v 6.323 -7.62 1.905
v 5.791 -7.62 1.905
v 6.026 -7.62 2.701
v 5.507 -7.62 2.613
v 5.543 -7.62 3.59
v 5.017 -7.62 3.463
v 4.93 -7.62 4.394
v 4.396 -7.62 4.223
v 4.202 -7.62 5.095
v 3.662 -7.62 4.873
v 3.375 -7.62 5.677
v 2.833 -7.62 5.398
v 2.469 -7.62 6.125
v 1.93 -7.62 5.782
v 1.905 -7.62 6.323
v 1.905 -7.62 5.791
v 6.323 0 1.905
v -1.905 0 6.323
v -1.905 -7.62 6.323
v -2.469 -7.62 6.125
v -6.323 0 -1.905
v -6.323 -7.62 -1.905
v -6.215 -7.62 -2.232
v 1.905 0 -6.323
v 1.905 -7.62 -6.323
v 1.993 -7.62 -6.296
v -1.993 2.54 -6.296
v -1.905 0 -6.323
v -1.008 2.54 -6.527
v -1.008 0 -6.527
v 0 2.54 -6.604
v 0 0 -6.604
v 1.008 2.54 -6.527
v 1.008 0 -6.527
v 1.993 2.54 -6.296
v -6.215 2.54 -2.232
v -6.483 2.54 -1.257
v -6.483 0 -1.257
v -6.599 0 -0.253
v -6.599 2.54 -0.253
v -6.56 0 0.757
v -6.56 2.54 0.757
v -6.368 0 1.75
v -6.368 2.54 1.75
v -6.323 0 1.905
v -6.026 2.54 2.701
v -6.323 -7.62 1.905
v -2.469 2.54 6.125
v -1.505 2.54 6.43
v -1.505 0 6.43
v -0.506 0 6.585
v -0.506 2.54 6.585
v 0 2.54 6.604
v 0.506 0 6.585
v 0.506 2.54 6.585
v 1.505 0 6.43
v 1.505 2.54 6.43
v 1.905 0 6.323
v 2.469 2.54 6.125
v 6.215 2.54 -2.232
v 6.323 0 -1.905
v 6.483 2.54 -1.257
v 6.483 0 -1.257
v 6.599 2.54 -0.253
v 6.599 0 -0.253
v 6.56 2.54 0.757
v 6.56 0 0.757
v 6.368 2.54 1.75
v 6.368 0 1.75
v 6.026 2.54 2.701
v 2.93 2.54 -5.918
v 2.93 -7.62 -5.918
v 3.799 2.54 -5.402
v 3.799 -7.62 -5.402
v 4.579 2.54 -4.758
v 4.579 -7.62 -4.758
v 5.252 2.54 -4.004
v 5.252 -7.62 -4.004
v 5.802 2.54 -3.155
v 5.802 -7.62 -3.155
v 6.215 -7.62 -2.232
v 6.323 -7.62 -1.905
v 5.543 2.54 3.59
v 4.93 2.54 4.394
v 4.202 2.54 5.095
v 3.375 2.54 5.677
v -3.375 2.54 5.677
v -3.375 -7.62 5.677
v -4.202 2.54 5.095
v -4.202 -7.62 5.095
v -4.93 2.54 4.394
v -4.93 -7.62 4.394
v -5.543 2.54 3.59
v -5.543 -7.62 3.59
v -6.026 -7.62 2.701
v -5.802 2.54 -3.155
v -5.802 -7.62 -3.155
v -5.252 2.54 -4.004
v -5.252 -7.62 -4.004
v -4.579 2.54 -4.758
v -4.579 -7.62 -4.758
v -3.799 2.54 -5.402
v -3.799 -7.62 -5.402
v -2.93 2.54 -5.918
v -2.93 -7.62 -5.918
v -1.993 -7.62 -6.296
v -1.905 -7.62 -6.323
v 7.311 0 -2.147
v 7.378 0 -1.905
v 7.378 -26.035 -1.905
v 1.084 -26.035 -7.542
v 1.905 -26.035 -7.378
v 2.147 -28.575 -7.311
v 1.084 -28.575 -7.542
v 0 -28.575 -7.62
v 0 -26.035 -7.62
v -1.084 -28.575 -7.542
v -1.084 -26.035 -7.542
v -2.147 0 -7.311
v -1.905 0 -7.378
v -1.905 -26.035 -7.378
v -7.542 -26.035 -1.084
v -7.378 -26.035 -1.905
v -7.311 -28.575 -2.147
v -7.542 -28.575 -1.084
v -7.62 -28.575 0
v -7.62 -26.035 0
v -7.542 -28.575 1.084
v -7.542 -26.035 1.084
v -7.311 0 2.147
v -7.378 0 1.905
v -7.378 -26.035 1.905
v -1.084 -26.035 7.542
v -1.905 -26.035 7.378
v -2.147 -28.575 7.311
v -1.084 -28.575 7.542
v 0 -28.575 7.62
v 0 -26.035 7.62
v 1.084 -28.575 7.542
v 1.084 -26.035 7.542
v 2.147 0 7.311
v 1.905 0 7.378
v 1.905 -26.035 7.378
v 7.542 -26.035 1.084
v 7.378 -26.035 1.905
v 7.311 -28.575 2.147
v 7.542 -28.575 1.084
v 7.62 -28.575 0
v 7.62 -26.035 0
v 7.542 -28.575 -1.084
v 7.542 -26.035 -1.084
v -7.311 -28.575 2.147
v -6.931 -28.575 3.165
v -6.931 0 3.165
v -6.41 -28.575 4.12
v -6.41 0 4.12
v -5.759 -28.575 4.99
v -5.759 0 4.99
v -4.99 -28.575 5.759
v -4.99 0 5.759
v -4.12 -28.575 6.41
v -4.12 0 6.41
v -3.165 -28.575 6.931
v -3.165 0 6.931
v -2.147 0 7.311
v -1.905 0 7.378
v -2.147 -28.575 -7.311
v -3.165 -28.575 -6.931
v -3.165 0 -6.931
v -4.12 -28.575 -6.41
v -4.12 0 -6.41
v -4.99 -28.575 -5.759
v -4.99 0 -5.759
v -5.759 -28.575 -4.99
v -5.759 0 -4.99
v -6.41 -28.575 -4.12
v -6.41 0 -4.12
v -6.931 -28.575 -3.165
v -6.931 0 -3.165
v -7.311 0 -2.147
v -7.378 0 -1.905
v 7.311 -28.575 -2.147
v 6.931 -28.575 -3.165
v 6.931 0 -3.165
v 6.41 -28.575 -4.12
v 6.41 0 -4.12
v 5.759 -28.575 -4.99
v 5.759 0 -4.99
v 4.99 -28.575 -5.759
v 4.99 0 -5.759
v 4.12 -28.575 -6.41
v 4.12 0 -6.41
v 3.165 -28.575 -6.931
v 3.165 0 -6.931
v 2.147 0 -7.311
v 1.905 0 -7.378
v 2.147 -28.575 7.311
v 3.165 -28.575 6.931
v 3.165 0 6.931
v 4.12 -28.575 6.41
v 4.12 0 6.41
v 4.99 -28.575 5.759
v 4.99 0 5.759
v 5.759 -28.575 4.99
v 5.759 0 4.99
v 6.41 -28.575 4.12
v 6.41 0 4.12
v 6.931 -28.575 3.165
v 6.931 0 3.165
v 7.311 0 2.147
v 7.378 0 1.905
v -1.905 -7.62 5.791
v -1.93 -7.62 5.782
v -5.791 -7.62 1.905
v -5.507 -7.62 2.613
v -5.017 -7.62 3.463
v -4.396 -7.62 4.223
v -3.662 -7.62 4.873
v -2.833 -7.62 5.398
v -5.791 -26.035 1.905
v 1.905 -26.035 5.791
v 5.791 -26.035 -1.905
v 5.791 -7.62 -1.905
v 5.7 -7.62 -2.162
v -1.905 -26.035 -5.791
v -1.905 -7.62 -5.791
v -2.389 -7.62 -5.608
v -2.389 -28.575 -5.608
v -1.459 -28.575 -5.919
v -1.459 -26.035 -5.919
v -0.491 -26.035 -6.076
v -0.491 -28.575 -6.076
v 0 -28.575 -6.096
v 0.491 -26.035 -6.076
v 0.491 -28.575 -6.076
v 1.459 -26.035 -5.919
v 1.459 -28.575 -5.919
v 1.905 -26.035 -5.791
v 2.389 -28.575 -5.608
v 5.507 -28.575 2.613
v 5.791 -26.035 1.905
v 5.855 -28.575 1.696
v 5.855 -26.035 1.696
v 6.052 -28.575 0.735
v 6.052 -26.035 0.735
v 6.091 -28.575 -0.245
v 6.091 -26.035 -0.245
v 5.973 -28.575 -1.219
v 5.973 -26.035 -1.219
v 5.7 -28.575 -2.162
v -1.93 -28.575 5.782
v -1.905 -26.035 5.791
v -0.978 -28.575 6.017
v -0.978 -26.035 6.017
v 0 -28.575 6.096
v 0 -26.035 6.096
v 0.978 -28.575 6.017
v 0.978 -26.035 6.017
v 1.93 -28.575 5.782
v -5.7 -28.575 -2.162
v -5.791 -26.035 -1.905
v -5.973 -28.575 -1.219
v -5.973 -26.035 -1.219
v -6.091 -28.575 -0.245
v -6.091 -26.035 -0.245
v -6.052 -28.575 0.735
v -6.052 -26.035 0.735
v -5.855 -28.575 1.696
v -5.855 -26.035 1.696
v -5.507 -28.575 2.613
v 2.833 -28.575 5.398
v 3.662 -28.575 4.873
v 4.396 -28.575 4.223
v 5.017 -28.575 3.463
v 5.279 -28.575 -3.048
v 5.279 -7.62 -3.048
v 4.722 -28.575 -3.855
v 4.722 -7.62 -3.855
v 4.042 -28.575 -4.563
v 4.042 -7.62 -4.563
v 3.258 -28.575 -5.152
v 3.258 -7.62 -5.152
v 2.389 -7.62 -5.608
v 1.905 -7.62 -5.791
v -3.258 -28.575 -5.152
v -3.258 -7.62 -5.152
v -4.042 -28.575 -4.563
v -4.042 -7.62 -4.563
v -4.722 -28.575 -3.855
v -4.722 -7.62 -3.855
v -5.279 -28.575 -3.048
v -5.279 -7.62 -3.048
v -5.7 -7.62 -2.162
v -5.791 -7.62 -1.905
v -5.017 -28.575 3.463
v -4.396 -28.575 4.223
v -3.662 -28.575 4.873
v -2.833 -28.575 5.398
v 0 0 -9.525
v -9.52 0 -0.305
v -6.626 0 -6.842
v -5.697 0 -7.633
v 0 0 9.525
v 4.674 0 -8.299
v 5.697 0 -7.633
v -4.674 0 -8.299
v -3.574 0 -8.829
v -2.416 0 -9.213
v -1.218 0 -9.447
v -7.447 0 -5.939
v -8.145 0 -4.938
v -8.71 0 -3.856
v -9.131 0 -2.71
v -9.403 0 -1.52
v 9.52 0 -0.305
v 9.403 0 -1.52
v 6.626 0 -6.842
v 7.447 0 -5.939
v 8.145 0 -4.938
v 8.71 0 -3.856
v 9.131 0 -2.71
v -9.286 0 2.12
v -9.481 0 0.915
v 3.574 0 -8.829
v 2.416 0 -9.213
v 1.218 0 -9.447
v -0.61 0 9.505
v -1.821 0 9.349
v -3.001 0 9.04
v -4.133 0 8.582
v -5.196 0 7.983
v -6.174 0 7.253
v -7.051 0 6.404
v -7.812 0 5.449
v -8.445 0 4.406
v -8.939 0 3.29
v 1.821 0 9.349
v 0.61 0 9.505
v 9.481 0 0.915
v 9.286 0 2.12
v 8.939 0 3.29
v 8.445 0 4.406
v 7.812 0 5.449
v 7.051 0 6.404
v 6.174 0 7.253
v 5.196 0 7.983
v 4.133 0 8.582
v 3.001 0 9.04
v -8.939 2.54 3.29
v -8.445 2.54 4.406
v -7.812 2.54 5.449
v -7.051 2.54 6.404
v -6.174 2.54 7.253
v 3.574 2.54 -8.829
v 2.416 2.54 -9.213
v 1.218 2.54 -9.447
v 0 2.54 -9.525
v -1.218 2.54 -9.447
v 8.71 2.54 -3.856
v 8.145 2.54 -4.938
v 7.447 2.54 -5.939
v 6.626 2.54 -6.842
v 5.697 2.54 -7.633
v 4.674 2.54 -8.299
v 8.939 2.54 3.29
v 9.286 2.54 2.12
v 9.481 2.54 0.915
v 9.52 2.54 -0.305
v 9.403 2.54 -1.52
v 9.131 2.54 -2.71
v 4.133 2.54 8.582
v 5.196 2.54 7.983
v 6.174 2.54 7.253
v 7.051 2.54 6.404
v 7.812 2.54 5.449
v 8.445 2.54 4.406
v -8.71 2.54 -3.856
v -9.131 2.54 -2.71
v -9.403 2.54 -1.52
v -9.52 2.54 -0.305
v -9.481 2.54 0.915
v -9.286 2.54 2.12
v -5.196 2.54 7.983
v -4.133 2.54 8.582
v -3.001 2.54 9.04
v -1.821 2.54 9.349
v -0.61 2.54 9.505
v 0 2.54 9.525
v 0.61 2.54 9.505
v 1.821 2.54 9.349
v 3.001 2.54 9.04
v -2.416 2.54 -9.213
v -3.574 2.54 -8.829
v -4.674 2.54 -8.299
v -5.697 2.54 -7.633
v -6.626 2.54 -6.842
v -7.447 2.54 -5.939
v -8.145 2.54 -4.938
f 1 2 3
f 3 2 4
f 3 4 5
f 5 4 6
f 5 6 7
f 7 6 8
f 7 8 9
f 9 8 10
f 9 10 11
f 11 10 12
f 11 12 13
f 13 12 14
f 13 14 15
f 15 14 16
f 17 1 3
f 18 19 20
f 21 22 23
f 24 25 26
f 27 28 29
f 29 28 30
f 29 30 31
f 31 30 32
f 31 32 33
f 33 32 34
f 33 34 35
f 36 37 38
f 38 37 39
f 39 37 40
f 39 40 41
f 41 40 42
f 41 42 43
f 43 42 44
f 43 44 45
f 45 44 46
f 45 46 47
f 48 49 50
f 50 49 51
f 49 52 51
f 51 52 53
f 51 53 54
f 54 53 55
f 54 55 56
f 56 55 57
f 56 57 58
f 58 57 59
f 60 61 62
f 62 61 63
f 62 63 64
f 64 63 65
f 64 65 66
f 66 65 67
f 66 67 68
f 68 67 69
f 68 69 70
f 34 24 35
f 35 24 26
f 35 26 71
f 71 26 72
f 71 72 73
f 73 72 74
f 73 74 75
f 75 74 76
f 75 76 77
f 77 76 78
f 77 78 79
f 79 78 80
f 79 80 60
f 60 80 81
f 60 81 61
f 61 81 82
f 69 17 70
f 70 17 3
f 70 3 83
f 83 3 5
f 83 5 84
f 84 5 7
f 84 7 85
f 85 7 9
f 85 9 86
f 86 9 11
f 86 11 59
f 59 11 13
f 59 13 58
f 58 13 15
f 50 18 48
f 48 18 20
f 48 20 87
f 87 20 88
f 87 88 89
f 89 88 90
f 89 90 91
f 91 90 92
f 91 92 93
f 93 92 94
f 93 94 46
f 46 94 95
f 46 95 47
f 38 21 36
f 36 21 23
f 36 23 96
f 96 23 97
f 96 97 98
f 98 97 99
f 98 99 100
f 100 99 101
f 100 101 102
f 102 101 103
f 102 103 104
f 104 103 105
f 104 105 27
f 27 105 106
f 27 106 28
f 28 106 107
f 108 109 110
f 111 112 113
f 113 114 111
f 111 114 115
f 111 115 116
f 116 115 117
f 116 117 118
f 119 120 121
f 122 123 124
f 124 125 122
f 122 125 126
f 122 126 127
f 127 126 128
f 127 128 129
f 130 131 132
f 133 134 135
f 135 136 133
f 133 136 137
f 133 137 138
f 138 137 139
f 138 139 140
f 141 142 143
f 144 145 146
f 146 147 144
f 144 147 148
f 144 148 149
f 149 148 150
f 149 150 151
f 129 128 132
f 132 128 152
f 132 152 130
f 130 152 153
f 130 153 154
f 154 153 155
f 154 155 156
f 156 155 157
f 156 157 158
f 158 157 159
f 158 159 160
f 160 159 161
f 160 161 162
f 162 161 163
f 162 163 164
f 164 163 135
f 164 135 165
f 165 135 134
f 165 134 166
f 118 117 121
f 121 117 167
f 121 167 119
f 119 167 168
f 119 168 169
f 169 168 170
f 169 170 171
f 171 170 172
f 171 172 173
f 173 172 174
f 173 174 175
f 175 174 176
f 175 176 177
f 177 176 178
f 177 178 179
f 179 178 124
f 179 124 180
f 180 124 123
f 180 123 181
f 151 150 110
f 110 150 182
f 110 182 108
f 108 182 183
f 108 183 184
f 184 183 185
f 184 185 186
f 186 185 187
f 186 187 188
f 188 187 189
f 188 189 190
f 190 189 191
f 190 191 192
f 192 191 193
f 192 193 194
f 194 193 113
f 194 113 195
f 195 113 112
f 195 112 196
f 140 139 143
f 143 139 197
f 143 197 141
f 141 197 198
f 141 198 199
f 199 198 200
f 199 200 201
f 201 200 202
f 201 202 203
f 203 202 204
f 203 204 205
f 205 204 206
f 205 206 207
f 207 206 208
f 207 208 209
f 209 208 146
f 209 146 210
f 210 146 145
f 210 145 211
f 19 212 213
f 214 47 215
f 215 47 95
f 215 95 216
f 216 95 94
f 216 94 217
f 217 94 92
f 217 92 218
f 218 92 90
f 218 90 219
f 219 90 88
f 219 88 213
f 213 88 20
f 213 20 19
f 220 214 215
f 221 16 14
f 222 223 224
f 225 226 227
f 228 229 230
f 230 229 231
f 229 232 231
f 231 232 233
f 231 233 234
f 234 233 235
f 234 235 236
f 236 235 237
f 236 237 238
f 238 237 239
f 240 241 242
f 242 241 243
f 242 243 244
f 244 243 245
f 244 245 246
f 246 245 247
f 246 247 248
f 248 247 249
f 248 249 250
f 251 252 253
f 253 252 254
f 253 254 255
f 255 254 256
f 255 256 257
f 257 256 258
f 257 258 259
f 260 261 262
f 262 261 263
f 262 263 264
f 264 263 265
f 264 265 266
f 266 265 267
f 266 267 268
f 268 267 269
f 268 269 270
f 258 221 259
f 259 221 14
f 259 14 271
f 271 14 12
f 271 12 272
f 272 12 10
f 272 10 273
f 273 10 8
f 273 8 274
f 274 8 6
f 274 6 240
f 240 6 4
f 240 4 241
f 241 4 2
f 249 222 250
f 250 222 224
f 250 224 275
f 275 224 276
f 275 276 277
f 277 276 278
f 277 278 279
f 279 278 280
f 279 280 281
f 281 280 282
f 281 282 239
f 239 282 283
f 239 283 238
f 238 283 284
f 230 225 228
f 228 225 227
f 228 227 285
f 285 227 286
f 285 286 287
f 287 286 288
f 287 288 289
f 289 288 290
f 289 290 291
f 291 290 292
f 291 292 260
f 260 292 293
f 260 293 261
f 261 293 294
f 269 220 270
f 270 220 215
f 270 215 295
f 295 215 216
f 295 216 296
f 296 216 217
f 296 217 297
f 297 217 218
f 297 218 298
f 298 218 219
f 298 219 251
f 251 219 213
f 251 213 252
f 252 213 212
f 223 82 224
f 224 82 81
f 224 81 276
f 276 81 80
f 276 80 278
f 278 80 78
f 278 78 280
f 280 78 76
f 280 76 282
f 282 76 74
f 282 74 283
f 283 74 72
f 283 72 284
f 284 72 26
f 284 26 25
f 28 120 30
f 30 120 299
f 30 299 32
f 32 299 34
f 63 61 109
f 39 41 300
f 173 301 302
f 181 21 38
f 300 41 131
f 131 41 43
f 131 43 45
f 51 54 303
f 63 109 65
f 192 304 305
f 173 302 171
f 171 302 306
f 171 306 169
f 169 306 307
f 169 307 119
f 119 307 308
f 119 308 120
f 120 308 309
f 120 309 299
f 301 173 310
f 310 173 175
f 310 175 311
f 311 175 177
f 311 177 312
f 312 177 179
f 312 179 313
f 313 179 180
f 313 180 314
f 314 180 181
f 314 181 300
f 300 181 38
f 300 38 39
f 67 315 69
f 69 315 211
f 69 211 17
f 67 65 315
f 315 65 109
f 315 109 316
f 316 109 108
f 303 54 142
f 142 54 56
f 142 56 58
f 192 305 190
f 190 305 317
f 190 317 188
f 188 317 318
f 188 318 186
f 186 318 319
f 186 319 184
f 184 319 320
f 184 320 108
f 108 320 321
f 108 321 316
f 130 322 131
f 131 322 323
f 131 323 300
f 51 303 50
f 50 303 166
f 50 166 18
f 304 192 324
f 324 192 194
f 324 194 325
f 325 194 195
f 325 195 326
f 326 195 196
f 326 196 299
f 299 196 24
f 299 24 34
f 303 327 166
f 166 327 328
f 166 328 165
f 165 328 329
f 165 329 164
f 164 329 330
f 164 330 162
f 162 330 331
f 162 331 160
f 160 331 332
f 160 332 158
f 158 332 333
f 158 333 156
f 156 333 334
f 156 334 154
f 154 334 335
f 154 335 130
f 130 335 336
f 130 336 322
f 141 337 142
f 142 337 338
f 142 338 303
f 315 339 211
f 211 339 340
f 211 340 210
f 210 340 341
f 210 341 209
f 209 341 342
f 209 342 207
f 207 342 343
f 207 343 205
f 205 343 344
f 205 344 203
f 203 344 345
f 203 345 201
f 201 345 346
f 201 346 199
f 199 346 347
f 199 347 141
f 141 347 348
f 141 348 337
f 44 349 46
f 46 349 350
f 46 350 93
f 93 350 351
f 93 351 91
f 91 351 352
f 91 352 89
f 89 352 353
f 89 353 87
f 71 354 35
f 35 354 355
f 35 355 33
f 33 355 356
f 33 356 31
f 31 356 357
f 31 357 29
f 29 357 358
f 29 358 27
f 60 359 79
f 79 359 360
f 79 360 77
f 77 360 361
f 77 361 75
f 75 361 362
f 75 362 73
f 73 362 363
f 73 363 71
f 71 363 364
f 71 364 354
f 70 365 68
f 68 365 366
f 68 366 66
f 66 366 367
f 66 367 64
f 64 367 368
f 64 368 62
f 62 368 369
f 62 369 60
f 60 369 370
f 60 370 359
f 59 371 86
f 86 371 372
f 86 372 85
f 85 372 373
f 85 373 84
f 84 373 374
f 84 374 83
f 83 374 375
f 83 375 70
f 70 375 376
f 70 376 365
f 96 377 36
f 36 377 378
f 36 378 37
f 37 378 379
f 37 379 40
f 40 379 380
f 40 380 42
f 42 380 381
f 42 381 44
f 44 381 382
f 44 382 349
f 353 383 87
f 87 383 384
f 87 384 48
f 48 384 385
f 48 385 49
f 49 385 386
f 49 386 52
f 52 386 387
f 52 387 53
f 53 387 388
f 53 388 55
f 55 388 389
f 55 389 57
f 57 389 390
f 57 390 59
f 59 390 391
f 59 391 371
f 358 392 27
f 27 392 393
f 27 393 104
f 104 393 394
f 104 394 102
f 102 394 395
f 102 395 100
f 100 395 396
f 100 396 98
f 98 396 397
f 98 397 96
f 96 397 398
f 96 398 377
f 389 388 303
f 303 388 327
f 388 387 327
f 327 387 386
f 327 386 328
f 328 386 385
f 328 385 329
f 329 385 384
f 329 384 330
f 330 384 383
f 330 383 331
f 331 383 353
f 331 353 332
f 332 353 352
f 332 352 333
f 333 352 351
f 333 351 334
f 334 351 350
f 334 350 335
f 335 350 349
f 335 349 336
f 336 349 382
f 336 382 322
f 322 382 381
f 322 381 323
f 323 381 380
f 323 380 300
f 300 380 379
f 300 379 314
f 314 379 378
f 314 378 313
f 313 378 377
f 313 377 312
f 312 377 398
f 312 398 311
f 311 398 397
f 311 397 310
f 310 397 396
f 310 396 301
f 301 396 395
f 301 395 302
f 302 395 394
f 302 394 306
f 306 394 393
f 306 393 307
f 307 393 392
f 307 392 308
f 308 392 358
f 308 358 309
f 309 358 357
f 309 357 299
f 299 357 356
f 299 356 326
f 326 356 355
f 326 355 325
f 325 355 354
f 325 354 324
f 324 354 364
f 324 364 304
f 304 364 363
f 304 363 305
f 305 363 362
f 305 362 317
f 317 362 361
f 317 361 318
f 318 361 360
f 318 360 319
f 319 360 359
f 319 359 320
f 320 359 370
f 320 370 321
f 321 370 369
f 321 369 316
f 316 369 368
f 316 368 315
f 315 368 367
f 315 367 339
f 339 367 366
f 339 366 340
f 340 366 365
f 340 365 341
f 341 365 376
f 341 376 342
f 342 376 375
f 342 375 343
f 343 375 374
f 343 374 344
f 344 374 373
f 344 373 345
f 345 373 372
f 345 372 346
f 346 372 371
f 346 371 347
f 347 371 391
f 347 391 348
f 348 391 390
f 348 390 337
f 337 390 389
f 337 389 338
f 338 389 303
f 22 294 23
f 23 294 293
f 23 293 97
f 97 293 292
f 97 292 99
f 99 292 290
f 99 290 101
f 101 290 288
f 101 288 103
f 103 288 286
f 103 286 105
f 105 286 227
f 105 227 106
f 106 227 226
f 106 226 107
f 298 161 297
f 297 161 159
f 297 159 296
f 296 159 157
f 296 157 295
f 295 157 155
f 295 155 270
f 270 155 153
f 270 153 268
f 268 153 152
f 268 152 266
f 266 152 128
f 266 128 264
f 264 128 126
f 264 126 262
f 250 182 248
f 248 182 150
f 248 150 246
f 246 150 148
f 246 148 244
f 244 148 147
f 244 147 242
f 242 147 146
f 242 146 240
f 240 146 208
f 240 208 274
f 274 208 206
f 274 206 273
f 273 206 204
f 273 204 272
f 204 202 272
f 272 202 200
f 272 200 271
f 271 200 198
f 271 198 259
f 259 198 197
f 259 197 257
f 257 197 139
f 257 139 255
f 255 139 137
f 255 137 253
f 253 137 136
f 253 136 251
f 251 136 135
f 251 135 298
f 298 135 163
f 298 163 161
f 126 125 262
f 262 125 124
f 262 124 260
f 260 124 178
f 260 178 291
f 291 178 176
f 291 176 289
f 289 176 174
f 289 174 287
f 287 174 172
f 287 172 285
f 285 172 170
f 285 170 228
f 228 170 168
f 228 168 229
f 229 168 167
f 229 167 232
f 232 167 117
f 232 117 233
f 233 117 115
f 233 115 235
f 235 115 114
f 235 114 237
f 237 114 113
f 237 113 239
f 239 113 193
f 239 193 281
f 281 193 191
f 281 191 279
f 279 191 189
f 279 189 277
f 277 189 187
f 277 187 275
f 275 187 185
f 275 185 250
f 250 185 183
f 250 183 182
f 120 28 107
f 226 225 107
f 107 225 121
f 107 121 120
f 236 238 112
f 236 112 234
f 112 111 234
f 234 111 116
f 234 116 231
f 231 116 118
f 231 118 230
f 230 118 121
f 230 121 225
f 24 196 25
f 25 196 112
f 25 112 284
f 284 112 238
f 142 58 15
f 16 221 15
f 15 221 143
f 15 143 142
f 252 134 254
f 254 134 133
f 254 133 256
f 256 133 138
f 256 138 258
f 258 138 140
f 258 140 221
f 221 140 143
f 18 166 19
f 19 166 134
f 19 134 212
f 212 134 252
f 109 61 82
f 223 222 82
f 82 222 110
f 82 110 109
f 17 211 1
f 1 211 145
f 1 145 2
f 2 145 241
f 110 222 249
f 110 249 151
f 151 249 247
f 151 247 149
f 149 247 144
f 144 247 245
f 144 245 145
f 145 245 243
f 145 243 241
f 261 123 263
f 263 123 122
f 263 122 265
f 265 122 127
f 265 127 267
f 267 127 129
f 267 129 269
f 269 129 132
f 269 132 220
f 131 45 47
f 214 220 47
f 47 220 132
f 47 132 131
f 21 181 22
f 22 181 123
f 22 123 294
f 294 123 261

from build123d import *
from build123d.topology import SkipClean

# Parameters (mm, degrees)
SKETCH1_R           = 9.525
SKETCH1_R_2         = 6.604
BOSS_EXTRUDE1_DEPTH = 2.54
BOSS_EXTRUDE2_START = 7.62
SKETCH2_R           = 7.62
SKETCH2_R_2         = 6.604
BOSS_EXTRUDE2_DEPTH = 7.62
BOSS_EXTRUDE3_START = 20.955
SKETCH3_R           = 7.62
SKETCH3_R_2         = 6.096
BOSS_EXTRUDE3_DEPTH = 20.955
SKETCH5_W           = 3.81
SKETCH5_H           = 26.035
CUT_EXTRUDE1_DEPTH  = 37.780699762
SKETCH7_W           = 3.81
SKETCH7_H           = 26.035
CUT_EXTRUDE2_DEPTH  = 37.780699762


with BuildPart() as part:
    # Sketch1 → Boss-Extrude1 (new body)
    with BuildSketch(Plane(origin=(0, 0, 0), x_dir=(1, 0, 0), z_dir=(0, 1, 0))):
        Circle(SKETCH1_R)
        Circle(SKETCH1_R_2, mode=Mode.SUBTRACT)
    extrude(amount=BOSS_EXTRUDE1_DEPTH)

    # Sketch2 → Boss-Extrude2 (add)
    with SkipClean():  # the faces are left unmerged after this step: merging them gives an invalid solid
        with BuildSketch(Plane(origin=(0, 0, 0), x_dir=(-1, 0, 0), z_dir=(0, -1, 0)).offset(BOSS_EXTRUDE2_START)):
            Circle(SKETCH2_R)
            Circle(SKETCH2_R_2, mode=Mode.SUBTRACT)
        extrude(amount=-BOSS_EXTRUDE2_DEPTH)

    # Sketch3 → Boss-Extrude3 (add)
    with SkipClean():  # the faces are left unmerged after this step: merging them gives an invalid solid
        with BuildSketch(Plane(origin=(0, -7.62, 0), x_dir=(-1, 0, 0), z_dir=(0, -1, 0)).offset(BOSS_EXTRUDE3_START)):
            Circle(SKETCH3_R)
            Circle(SKETCH3_R_2, mode=Mode.SUBTRACT)
        extrude(amount=-BOSS_EXTRUDE3_DEPTH)

    # Sketch5 → Cut-Extrude1 (cut, through all)
    with SkipClean():  # the faces are left unmerged after this step: merging them gives an invalid solid
        with BuildSketch(Plane(origin=(0, -28.575, 7.62), x_dir=(1, 0, 0), z_dir=(0, 0, 1))):
            with Locations((0, 15.5575)):
                Rectangle(SKETCH5_W, SKETCH5_H)
        extrude(amount=-CUT_EXTRUDE1_DEPTH, mode=Mode.SUBTRACT)

    # Sketch7 → Cut-Extrude2 (cut, through all)
    with SkipClean():  # the faces are left unmerged after this step: merging them gives an invalid solid
        with BuildSketch(Plane(origin=(7.62, -28.575, 0), x_dir=(0, 0, -1), z_dir=(1, 0, 0))):
            with Locations((0, 15.5575)):
                Rectangle(SKETCH7_W, SKETCH7_H)
        extrude(amount=-CUT_EXTRUDE2_DEPTH, mode=Mode.SUBTRACT)
    add(part.part.scale(1), mode=Mode.REPLACE)  # the faces are merged on a copy


solid = part.part
